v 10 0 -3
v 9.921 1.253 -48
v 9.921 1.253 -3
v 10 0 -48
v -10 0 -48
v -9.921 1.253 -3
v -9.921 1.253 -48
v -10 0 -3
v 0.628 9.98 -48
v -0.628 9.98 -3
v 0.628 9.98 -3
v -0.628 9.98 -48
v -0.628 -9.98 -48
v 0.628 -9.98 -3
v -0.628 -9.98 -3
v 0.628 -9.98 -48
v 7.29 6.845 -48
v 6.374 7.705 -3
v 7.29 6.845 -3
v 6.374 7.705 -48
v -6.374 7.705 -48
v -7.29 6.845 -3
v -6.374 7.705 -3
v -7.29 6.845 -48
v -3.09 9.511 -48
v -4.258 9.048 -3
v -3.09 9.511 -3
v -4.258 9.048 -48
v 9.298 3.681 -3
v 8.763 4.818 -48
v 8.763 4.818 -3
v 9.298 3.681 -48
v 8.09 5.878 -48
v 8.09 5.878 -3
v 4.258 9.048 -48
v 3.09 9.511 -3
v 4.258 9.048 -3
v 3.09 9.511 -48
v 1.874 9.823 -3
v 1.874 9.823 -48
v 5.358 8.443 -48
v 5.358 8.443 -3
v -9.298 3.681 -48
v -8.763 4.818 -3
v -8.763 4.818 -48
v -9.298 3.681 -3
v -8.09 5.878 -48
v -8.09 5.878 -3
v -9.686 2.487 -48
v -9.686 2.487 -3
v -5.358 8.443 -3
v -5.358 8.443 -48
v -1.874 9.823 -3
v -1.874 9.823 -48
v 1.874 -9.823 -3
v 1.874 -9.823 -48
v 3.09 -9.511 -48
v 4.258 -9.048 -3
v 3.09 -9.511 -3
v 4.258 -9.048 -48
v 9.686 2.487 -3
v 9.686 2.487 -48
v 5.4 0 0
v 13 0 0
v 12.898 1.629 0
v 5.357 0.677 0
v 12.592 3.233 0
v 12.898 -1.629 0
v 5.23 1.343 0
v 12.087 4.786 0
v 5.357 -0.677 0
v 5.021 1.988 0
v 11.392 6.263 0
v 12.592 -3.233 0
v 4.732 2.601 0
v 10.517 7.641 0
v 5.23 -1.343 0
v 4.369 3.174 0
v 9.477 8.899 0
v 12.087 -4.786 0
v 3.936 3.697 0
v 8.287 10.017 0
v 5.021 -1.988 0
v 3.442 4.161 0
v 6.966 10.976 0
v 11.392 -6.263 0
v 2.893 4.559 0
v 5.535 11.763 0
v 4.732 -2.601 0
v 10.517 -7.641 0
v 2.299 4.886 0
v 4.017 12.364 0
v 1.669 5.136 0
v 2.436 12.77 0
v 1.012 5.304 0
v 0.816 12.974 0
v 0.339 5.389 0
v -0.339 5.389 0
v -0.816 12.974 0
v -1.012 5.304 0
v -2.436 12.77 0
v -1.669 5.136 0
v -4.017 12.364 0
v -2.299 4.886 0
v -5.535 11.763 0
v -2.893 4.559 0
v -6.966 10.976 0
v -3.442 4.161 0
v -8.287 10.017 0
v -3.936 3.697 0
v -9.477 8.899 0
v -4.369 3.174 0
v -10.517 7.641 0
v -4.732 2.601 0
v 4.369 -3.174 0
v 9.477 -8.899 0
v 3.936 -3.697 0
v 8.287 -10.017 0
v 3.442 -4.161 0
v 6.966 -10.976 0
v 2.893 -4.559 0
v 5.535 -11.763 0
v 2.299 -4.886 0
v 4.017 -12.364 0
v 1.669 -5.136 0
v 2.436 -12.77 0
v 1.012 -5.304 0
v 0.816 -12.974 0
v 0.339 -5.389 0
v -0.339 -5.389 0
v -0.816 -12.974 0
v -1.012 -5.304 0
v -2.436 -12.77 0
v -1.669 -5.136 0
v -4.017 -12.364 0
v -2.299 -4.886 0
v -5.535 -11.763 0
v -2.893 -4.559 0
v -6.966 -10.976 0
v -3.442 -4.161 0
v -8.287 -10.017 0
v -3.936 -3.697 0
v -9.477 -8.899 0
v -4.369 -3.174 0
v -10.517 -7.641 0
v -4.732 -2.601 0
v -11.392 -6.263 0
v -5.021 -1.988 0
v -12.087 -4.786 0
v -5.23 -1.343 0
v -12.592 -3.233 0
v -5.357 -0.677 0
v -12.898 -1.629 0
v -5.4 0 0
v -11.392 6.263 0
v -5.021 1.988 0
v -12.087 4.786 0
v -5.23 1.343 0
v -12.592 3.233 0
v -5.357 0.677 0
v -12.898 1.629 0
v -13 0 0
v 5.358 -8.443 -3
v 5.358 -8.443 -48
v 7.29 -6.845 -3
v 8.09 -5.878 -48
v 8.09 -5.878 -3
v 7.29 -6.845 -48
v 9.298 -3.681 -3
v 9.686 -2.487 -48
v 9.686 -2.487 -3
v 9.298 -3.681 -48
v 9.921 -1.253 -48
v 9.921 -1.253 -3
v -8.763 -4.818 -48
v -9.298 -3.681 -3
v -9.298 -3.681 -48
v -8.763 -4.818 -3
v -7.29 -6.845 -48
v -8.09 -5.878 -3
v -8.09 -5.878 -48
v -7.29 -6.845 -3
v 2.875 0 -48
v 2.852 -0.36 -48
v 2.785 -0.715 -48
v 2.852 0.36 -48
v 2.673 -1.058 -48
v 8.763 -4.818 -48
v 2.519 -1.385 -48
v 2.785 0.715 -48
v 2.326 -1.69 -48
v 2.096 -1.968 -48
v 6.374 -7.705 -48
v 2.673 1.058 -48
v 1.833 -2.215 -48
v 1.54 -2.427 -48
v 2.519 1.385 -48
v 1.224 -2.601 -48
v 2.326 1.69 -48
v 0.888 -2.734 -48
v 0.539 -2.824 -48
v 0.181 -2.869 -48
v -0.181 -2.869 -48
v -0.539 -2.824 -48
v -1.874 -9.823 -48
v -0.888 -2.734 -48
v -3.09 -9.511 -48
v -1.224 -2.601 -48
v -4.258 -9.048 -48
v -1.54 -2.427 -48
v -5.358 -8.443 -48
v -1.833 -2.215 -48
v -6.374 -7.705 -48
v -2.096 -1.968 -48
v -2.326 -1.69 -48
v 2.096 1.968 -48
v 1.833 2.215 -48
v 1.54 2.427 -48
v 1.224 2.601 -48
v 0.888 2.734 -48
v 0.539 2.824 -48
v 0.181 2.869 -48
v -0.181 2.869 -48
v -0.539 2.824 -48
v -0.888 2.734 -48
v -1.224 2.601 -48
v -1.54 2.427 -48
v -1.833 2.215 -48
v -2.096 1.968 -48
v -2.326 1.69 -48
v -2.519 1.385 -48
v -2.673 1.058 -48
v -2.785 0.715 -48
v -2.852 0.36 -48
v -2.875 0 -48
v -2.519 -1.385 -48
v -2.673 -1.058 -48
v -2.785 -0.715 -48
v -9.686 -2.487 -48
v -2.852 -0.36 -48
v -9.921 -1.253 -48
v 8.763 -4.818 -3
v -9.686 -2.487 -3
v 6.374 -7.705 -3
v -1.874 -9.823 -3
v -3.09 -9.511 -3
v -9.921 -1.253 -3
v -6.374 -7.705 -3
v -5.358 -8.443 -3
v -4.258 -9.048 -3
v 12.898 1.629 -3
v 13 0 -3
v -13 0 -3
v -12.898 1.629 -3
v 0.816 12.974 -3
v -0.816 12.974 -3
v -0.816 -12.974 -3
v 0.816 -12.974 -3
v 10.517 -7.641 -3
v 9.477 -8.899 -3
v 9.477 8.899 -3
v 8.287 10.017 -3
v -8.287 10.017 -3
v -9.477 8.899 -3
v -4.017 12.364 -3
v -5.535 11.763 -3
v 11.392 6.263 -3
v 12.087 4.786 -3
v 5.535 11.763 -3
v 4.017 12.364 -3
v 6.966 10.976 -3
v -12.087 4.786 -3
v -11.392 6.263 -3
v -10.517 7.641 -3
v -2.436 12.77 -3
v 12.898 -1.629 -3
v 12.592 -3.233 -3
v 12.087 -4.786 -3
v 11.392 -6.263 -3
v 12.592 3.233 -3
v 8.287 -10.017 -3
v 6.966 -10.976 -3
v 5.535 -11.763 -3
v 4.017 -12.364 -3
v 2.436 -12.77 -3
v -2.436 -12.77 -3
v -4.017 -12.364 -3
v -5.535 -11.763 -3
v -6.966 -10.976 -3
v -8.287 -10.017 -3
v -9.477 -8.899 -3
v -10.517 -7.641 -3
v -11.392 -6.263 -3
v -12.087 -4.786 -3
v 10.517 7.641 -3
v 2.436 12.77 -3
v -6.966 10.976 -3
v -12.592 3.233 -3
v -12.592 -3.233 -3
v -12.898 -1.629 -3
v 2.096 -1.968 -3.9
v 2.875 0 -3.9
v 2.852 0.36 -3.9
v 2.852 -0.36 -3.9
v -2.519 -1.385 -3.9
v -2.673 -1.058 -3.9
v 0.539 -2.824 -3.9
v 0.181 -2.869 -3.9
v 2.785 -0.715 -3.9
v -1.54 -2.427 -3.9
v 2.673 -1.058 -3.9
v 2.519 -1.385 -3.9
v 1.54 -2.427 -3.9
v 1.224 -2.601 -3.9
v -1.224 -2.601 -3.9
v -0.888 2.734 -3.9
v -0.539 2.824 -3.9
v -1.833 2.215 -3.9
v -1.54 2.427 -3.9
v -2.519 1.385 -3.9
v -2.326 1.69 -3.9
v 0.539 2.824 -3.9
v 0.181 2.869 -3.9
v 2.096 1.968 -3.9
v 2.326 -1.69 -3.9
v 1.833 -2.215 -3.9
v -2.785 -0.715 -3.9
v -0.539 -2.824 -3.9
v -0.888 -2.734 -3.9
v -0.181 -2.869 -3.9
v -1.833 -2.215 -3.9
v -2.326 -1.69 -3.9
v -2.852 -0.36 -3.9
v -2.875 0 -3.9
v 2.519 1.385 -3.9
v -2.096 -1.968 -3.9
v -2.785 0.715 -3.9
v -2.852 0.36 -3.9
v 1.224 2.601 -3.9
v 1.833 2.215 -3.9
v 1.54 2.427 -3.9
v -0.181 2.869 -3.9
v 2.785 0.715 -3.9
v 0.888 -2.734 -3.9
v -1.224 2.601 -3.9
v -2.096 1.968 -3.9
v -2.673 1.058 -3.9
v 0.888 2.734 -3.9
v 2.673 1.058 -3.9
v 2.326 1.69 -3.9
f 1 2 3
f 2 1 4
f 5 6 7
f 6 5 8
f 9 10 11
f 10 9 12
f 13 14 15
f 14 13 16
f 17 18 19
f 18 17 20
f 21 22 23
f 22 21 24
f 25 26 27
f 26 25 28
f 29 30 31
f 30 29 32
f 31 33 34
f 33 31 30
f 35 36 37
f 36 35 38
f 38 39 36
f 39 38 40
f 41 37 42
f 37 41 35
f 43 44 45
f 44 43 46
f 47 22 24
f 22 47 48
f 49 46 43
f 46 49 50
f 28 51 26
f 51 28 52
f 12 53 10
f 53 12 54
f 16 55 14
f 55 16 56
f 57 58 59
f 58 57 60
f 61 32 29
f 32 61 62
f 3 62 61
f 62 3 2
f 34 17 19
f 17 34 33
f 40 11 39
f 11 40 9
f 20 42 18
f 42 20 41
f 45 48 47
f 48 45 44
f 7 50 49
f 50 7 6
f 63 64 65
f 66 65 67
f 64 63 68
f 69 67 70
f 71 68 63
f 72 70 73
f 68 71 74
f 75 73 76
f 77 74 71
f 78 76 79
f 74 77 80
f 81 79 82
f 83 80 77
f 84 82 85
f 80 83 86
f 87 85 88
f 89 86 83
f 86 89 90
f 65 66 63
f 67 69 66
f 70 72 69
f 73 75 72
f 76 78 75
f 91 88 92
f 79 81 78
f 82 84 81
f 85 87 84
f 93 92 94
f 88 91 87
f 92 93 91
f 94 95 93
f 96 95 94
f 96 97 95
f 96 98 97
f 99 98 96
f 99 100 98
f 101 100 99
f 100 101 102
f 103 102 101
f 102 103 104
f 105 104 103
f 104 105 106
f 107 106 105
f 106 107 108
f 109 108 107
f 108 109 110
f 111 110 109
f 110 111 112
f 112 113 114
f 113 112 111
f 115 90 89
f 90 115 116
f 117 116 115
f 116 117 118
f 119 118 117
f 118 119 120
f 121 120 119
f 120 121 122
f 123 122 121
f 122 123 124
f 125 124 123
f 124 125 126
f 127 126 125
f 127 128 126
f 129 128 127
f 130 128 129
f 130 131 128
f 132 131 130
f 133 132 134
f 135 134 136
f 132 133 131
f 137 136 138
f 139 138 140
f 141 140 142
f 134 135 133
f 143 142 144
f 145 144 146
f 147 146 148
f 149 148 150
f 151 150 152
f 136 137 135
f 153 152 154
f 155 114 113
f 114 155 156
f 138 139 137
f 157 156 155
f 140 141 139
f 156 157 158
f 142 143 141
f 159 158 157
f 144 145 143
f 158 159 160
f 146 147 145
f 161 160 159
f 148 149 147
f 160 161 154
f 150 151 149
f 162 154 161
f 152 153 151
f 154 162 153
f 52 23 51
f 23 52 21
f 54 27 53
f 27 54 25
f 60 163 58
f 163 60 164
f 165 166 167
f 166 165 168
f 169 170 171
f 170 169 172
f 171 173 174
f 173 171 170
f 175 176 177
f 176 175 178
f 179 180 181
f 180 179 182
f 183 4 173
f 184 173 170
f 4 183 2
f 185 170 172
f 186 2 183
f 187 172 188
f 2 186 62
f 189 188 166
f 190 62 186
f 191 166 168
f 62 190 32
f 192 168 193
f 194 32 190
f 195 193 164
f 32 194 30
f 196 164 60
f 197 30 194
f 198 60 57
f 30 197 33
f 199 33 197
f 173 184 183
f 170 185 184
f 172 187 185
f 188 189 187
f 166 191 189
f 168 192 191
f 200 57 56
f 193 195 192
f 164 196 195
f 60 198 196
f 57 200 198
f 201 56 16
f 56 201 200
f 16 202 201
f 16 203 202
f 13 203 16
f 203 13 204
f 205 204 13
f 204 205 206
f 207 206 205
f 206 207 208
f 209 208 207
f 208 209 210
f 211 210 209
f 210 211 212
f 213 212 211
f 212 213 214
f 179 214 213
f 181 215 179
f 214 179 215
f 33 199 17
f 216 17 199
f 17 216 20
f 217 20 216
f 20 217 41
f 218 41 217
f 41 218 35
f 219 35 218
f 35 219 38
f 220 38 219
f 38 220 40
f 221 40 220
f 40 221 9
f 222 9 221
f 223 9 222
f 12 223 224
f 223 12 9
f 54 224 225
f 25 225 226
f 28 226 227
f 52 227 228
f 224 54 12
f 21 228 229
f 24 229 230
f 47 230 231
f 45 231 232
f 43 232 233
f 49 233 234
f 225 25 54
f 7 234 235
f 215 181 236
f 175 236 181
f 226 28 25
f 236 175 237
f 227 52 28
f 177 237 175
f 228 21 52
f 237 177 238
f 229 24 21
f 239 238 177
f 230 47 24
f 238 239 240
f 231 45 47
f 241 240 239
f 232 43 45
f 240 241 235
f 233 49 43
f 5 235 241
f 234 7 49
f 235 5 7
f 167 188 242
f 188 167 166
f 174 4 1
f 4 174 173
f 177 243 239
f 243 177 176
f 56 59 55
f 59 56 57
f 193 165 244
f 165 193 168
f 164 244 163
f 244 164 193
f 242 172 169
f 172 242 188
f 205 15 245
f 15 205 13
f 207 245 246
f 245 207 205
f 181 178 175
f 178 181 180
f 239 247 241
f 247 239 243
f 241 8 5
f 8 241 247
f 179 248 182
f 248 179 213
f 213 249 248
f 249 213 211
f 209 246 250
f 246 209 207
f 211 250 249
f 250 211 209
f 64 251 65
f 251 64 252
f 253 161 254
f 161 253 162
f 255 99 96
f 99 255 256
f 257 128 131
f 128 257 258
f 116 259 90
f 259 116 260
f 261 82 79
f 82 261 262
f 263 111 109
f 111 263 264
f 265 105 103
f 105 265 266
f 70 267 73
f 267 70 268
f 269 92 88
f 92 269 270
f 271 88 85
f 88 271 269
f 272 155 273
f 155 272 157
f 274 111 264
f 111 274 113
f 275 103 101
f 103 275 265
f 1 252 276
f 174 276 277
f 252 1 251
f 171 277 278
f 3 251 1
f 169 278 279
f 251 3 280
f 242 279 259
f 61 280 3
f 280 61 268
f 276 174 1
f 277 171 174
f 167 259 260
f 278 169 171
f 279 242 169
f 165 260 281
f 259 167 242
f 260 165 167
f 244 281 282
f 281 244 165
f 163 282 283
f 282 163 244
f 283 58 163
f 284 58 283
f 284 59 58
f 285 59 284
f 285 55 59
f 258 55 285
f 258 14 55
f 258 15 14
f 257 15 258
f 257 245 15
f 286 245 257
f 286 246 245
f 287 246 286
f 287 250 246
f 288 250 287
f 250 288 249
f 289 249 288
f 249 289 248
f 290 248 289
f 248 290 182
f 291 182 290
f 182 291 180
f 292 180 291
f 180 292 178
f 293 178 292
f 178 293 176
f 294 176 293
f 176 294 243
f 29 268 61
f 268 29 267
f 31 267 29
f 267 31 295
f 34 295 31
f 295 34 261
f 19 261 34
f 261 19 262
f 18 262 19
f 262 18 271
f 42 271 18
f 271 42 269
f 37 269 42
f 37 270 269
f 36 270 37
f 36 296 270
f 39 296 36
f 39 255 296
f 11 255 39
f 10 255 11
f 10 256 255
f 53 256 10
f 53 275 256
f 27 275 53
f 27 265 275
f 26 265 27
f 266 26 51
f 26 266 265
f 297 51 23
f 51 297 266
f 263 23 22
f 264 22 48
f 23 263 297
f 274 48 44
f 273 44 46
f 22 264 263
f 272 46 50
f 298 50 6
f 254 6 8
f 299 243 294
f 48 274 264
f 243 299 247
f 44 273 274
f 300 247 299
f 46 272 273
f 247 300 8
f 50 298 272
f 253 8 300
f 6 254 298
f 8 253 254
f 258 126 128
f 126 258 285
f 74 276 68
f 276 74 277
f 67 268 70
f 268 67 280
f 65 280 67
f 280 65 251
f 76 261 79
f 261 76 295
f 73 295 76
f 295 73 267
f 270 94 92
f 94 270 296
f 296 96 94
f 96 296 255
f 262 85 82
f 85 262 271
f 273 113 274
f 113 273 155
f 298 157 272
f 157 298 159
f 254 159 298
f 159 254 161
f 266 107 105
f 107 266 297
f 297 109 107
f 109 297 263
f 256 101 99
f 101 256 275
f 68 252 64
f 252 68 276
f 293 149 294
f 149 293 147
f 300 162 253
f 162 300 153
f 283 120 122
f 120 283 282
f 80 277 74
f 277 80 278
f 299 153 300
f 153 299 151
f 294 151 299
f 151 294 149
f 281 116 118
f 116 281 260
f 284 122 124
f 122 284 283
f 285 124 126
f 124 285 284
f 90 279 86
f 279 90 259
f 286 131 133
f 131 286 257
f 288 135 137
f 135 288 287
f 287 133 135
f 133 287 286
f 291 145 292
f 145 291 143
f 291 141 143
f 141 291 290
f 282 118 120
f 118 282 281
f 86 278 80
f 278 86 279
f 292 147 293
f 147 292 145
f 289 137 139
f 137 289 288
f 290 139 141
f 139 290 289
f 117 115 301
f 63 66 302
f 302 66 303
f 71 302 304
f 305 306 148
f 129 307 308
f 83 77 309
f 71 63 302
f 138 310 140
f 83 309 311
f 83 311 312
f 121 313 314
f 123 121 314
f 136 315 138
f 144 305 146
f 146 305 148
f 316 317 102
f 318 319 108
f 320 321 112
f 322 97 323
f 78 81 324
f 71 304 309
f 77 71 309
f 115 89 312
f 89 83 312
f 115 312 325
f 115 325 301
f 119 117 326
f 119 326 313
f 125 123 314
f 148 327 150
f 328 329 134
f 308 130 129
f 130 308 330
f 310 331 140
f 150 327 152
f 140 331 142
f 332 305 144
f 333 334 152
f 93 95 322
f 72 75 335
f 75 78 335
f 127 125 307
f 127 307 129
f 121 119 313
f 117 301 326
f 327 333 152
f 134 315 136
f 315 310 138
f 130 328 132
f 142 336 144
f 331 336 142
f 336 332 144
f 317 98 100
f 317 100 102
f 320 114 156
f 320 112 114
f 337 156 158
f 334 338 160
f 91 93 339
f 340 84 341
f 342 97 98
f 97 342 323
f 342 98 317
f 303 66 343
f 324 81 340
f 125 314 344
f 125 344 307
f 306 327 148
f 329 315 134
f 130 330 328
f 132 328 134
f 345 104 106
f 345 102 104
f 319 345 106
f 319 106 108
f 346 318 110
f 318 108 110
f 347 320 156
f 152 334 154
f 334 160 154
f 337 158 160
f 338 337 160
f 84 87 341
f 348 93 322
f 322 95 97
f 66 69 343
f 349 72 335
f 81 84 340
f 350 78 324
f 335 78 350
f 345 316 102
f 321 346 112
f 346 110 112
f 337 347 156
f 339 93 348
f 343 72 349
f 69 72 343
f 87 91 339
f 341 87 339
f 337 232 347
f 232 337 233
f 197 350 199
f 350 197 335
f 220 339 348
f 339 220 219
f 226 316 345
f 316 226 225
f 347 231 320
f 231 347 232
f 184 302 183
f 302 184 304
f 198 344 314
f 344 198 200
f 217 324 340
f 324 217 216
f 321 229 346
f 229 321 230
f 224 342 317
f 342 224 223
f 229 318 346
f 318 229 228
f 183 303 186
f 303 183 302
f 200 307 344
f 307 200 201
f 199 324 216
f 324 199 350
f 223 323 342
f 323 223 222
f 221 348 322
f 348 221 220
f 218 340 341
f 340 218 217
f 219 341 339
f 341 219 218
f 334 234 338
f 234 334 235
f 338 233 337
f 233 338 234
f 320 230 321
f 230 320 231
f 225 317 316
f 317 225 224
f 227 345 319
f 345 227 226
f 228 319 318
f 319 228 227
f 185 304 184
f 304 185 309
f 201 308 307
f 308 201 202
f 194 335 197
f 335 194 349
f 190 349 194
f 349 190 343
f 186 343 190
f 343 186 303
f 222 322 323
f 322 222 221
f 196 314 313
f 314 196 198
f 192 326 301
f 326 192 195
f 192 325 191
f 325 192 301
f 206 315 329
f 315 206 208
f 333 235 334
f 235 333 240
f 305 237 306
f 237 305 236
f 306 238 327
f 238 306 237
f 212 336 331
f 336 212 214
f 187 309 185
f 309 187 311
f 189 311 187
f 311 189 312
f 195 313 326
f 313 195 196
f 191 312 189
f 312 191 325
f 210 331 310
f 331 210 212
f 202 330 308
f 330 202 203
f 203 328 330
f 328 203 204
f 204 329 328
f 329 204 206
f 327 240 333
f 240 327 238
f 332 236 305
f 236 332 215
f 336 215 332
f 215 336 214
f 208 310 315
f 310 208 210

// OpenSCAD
$fn = 50;


difference() {
	union() {
		translate(v = [0, 0, -48.0000000000]) {
			cylinder(h = 48, r = 10.0000000000);
		}
		translate(v = [0, 0, -3.0000000000]) {
			cylinder(h = 3, r = 13.0000000000);
		}
	}
	union() {
		translate(v = [0, 0, 0]) {
			rotate(a = [0, 0, 0]) {
				difference() {
					union() {
						#translate(v = [0, 0, -48.0000000000]) {
							cylinder(h = 48, r = 2.6000000000);
						}
						#translate(v = [0, 0, -3.9000000000]) {
							cylinder(h = 3.9000000000, r = 10.0000000000, r1 = 2.8750000000, r2 = 5.4000000000);
						}
						#translate(v = [0, 0, -48.0000000000]) {
							cylinder(h = 48, r = 2.8750000000);
						}
						#translate(v = [0, 0, -48.0000000000]) {
							cylinder(h = 48, r = 2.6000000000);
						}
					}
					union();
				}
			}
		}
	}
}
